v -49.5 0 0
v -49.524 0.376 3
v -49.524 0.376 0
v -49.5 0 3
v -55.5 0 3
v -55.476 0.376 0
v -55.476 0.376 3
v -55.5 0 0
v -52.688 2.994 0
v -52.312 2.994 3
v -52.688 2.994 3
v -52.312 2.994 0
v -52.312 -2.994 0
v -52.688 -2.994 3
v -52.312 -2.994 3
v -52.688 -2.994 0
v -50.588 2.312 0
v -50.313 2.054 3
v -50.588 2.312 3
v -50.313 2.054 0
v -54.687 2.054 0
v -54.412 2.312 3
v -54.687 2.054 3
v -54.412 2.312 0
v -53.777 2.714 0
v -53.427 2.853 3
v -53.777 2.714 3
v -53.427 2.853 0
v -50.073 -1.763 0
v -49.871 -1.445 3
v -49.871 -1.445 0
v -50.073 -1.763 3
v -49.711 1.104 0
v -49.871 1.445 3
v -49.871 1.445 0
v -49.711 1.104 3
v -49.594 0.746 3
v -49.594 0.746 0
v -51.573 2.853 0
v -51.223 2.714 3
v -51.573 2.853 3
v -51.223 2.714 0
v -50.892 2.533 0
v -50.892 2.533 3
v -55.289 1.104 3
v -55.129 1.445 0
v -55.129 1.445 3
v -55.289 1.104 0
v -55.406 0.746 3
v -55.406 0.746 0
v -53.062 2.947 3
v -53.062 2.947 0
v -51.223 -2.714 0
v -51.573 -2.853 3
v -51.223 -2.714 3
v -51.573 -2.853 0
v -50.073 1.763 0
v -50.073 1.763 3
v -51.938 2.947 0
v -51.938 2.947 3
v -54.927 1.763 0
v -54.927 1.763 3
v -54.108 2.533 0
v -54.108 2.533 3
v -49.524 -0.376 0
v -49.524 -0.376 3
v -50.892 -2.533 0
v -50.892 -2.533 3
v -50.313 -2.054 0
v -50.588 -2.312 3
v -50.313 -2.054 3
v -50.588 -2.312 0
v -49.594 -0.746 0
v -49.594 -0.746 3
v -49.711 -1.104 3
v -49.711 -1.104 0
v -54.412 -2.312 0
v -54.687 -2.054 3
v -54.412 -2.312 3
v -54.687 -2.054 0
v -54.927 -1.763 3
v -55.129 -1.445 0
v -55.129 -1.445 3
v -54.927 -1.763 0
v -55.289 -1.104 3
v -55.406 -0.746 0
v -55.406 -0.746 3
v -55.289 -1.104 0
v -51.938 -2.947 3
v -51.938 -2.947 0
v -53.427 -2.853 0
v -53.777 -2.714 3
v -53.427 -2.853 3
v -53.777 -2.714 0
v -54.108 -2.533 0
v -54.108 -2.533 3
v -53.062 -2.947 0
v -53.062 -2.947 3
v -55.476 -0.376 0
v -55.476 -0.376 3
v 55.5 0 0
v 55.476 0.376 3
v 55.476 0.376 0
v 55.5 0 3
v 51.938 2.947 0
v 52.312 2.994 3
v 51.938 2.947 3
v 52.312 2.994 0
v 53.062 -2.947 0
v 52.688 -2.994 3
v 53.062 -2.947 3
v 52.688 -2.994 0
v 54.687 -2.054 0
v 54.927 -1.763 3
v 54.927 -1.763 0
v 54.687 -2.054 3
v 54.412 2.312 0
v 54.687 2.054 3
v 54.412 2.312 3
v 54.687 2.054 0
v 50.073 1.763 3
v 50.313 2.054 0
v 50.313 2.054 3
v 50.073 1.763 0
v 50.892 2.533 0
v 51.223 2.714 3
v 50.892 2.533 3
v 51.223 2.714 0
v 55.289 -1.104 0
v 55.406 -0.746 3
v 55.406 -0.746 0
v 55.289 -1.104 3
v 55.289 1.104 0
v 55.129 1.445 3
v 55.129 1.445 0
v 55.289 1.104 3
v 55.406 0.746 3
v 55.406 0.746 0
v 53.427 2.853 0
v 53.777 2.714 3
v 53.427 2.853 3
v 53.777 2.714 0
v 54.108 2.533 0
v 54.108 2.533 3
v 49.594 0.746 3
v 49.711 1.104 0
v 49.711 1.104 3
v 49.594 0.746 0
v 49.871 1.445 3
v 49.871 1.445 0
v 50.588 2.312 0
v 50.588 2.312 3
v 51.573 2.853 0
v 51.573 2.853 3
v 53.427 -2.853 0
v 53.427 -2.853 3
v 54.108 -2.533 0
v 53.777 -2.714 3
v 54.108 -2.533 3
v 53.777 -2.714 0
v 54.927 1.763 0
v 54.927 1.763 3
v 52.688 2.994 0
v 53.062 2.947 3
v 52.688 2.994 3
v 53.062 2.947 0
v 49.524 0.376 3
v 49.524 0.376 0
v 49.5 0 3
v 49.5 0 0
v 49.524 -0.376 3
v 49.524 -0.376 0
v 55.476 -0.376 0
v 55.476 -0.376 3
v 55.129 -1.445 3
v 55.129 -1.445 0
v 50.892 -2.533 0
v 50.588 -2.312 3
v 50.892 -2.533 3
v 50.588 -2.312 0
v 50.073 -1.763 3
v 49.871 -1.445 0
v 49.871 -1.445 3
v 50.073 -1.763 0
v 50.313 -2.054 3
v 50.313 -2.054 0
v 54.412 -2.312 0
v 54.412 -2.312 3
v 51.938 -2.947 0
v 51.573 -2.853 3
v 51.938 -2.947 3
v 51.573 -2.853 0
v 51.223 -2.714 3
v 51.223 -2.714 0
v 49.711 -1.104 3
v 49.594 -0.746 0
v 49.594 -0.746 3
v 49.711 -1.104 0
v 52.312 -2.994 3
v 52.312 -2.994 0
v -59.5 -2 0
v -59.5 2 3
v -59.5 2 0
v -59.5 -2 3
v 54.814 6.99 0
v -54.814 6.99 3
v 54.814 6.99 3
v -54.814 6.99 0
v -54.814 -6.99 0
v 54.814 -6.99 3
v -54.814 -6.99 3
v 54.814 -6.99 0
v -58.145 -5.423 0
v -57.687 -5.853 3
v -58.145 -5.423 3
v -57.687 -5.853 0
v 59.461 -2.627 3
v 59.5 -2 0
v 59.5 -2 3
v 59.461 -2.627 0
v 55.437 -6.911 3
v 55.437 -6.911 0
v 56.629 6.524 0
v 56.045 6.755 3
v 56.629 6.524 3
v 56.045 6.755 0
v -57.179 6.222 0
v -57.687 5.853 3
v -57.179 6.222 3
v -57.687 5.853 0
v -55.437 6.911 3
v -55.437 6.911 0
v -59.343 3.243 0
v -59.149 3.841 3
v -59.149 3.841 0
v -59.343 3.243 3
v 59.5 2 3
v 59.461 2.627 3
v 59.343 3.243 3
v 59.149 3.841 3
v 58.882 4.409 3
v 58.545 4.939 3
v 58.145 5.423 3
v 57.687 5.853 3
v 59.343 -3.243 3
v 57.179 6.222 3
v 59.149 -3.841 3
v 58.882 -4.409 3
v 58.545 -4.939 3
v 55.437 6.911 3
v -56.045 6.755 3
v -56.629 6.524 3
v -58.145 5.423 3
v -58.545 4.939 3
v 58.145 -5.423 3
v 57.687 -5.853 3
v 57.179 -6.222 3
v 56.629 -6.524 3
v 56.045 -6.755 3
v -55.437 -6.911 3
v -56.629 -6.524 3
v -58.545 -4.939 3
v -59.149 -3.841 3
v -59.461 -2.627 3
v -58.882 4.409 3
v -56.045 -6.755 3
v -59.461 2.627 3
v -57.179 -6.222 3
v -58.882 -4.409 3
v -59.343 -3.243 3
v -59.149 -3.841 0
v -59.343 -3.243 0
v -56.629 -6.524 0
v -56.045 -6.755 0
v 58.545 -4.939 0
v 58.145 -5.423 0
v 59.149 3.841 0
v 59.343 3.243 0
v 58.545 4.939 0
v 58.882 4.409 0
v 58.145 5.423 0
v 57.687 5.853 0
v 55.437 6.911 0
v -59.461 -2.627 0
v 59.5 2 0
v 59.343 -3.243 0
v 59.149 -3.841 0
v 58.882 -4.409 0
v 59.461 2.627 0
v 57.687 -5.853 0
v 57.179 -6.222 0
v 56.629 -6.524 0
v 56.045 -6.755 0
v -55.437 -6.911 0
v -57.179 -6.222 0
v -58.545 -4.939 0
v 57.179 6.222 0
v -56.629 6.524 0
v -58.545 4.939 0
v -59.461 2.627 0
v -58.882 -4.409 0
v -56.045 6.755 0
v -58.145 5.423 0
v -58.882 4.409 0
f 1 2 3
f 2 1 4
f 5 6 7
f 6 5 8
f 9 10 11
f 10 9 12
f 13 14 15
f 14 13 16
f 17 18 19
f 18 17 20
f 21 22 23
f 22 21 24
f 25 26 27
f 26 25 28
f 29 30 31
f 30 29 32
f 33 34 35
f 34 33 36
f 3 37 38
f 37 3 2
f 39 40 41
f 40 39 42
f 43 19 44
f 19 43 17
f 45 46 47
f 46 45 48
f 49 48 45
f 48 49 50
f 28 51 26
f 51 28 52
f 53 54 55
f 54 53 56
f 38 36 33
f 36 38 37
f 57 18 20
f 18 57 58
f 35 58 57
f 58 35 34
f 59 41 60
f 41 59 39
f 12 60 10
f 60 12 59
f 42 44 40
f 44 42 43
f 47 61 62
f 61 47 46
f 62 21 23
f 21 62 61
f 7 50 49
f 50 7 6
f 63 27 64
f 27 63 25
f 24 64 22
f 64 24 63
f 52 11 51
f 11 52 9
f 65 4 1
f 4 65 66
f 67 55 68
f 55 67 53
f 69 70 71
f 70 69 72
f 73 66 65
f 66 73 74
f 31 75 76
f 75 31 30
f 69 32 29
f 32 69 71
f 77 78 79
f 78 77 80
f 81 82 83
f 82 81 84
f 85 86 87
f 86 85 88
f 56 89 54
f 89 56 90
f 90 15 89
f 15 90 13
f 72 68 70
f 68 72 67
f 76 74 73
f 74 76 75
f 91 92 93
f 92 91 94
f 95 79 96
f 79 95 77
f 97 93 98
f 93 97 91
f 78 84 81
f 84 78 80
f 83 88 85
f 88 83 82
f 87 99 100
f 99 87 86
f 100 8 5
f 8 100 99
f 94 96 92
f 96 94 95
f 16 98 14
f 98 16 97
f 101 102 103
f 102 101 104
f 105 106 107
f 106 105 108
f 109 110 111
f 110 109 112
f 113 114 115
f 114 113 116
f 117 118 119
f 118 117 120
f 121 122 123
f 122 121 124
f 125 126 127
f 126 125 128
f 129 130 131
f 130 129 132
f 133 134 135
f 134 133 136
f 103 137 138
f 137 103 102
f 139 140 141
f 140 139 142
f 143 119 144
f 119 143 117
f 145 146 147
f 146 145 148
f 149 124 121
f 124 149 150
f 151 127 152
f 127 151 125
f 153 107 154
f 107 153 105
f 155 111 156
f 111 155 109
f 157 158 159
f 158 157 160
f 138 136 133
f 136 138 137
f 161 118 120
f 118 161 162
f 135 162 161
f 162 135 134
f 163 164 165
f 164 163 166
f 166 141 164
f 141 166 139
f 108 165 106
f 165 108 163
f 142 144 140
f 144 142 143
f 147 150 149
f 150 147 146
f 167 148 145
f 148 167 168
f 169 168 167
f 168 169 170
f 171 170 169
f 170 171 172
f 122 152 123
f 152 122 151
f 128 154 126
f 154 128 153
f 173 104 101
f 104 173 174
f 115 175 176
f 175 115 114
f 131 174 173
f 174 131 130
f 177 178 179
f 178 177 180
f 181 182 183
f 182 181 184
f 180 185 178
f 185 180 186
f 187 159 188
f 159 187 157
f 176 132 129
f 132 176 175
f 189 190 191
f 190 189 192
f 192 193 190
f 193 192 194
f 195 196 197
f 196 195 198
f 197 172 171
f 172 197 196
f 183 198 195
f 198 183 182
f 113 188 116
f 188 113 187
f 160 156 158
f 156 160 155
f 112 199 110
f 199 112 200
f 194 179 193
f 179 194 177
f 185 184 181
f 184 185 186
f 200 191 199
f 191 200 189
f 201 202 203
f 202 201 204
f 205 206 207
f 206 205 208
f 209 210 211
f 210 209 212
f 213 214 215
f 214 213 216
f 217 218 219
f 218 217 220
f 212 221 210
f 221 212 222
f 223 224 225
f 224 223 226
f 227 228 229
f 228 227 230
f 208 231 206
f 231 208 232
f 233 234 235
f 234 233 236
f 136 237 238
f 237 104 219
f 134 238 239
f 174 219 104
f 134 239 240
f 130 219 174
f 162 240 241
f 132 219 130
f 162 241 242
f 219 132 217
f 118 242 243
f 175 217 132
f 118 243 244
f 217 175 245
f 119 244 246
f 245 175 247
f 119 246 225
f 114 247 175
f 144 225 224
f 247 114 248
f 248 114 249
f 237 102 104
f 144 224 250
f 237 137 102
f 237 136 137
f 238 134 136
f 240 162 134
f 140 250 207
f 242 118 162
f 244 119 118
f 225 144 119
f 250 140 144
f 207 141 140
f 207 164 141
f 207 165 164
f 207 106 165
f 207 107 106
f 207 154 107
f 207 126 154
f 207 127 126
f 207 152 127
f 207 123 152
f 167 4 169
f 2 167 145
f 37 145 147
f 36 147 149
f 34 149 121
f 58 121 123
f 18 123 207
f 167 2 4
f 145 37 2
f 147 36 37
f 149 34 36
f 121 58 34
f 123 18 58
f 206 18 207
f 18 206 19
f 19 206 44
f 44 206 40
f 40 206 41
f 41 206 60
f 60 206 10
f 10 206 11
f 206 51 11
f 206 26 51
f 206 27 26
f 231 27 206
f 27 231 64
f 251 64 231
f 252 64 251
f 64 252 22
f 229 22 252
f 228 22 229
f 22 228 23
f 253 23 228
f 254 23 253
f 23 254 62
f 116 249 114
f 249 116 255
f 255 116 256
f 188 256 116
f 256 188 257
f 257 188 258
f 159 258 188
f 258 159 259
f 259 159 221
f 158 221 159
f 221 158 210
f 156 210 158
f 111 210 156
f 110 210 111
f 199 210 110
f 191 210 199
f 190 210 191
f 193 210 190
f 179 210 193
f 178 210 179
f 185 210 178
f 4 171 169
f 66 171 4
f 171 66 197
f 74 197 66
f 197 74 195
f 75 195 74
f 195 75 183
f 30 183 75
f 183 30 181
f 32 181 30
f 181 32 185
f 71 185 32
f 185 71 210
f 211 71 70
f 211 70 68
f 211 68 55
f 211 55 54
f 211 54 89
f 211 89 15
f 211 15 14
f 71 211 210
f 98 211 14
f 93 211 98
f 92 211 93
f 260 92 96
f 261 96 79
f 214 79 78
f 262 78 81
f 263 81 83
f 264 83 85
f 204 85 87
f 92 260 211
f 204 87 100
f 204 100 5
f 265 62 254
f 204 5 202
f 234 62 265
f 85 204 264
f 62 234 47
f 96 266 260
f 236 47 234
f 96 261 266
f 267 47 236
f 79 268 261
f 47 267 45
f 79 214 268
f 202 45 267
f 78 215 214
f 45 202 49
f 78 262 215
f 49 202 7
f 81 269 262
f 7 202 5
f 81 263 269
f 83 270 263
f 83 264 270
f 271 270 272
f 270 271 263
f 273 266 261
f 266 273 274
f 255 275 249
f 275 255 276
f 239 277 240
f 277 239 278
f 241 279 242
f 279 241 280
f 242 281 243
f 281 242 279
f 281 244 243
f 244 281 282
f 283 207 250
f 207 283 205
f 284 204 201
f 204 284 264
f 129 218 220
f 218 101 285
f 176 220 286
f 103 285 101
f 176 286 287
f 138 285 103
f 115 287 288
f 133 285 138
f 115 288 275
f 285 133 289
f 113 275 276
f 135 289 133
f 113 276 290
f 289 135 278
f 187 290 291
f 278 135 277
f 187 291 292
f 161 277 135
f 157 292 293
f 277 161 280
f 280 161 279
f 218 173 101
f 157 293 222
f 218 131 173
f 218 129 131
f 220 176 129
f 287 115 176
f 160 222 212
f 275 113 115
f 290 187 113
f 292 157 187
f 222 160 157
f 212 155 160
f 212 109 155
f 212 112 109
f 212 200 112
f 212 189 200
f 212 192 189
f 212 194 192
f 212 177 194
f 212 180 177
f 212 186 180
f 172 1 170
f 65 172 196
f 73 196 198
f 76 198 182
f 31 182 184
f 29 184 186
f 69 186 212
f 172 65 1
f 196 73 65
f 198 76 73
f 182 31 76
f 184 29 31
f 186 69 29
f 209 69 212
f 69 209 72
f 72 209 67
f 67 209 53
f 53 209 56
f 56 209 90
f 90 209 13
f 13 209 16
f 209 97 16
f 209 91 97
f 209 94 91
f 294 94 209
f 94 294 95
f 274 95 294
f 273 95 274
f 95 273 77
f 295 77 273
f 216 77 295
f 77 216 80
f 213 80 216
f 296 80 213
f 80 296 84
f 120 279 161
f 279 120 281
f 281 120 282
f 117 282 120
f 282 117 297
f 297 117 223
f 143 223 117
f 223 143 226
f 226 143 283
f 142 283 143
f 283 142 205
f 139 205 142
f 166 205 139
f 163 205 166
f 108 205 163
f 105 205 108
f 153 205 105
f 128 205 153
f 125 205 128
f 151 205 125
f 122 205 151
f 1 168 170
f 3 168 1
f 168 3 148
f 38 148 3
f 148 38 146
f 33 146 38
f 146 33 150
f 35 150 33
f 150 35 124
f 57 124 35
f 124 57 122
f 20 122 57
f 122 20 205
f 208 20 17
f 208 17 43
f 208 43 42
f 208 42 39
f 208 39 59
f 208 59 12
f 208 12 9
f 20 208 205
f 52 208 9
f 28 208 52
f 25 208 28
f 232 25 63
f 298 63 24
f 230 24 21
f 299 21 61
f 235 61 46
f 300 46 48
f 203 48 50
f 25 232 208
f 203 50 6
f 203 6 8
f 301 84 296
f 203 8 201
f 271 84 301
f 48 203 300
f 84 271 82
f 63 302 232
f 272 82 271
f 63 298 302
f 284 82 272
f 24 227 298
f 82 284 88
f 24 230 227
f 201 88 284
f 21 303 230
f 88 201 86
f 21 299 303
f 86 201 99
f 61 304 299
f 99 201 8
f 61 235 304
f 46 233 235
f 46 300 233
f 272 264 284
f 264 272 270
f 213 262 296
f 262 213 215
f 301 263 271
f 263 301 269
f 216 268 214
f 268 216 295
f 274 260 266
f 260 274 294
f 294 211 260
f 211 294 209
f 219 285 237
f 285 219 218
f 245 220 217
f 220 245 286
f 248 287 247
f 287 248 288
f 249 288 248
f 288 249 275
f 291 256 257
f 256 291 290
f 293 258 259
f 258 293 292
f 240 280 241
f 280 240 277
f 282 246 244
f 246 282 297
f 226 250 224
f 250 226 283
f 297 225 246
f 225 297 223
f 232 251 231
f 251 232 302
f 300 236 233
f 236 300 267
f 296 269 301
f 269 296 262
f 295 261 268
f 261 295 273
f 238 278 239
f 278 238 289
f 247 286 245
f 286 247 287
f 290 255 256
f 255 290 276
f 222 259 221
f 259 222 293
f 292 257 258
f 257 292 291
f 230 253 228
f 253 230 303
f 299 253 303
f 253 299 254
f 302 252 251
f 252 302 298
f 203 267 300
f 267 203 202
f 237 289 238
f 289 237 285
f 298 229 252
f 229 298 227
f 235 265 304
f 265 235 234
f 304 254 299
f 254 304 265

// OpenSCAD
$fn = 50;


difference() {
	union() {
		hull() {
			translate(v = [-54.5000000000, 2.0000000000, 0]) {
				cylinder(h = 3, r = 5);
			}
			translate(v = [54.5000000000, 2.0000000000, 0]) {
				cylinder(h = 3, r = 5);
			}
			translate(v = [-54.5000000000, -2.0000000000, 0]) {
				cylinder(h = 3, r = 5);
			}
			translate(v = [54.5000000000, -2.0000000000, 0]) {
				cylinder(h = 3, r = 5);
			}
		}
	}
	union() {
		translate(v = [-52.5000000000, 0.0000000000, -100.0000000000]) {
			cylinder(h = 200, r = 3.0000000000);
		}
		translate(v = [-52.5000000000, 0.0000000000, -100.0000000000]) {
			cylinder(h = 200, r = 3.0000000000);
		}
		translate(v = [52.5000000000, 0.0000000000, -100.0000000000]) {
			cylinder(h = 200, r = 3.0000000000);
		}
		translate(v = [52.5000000000, 0.0000000000, -100.0000000000]) {
			cylinder(h = 200, r = 3.0000000000);
		}
	}
}
